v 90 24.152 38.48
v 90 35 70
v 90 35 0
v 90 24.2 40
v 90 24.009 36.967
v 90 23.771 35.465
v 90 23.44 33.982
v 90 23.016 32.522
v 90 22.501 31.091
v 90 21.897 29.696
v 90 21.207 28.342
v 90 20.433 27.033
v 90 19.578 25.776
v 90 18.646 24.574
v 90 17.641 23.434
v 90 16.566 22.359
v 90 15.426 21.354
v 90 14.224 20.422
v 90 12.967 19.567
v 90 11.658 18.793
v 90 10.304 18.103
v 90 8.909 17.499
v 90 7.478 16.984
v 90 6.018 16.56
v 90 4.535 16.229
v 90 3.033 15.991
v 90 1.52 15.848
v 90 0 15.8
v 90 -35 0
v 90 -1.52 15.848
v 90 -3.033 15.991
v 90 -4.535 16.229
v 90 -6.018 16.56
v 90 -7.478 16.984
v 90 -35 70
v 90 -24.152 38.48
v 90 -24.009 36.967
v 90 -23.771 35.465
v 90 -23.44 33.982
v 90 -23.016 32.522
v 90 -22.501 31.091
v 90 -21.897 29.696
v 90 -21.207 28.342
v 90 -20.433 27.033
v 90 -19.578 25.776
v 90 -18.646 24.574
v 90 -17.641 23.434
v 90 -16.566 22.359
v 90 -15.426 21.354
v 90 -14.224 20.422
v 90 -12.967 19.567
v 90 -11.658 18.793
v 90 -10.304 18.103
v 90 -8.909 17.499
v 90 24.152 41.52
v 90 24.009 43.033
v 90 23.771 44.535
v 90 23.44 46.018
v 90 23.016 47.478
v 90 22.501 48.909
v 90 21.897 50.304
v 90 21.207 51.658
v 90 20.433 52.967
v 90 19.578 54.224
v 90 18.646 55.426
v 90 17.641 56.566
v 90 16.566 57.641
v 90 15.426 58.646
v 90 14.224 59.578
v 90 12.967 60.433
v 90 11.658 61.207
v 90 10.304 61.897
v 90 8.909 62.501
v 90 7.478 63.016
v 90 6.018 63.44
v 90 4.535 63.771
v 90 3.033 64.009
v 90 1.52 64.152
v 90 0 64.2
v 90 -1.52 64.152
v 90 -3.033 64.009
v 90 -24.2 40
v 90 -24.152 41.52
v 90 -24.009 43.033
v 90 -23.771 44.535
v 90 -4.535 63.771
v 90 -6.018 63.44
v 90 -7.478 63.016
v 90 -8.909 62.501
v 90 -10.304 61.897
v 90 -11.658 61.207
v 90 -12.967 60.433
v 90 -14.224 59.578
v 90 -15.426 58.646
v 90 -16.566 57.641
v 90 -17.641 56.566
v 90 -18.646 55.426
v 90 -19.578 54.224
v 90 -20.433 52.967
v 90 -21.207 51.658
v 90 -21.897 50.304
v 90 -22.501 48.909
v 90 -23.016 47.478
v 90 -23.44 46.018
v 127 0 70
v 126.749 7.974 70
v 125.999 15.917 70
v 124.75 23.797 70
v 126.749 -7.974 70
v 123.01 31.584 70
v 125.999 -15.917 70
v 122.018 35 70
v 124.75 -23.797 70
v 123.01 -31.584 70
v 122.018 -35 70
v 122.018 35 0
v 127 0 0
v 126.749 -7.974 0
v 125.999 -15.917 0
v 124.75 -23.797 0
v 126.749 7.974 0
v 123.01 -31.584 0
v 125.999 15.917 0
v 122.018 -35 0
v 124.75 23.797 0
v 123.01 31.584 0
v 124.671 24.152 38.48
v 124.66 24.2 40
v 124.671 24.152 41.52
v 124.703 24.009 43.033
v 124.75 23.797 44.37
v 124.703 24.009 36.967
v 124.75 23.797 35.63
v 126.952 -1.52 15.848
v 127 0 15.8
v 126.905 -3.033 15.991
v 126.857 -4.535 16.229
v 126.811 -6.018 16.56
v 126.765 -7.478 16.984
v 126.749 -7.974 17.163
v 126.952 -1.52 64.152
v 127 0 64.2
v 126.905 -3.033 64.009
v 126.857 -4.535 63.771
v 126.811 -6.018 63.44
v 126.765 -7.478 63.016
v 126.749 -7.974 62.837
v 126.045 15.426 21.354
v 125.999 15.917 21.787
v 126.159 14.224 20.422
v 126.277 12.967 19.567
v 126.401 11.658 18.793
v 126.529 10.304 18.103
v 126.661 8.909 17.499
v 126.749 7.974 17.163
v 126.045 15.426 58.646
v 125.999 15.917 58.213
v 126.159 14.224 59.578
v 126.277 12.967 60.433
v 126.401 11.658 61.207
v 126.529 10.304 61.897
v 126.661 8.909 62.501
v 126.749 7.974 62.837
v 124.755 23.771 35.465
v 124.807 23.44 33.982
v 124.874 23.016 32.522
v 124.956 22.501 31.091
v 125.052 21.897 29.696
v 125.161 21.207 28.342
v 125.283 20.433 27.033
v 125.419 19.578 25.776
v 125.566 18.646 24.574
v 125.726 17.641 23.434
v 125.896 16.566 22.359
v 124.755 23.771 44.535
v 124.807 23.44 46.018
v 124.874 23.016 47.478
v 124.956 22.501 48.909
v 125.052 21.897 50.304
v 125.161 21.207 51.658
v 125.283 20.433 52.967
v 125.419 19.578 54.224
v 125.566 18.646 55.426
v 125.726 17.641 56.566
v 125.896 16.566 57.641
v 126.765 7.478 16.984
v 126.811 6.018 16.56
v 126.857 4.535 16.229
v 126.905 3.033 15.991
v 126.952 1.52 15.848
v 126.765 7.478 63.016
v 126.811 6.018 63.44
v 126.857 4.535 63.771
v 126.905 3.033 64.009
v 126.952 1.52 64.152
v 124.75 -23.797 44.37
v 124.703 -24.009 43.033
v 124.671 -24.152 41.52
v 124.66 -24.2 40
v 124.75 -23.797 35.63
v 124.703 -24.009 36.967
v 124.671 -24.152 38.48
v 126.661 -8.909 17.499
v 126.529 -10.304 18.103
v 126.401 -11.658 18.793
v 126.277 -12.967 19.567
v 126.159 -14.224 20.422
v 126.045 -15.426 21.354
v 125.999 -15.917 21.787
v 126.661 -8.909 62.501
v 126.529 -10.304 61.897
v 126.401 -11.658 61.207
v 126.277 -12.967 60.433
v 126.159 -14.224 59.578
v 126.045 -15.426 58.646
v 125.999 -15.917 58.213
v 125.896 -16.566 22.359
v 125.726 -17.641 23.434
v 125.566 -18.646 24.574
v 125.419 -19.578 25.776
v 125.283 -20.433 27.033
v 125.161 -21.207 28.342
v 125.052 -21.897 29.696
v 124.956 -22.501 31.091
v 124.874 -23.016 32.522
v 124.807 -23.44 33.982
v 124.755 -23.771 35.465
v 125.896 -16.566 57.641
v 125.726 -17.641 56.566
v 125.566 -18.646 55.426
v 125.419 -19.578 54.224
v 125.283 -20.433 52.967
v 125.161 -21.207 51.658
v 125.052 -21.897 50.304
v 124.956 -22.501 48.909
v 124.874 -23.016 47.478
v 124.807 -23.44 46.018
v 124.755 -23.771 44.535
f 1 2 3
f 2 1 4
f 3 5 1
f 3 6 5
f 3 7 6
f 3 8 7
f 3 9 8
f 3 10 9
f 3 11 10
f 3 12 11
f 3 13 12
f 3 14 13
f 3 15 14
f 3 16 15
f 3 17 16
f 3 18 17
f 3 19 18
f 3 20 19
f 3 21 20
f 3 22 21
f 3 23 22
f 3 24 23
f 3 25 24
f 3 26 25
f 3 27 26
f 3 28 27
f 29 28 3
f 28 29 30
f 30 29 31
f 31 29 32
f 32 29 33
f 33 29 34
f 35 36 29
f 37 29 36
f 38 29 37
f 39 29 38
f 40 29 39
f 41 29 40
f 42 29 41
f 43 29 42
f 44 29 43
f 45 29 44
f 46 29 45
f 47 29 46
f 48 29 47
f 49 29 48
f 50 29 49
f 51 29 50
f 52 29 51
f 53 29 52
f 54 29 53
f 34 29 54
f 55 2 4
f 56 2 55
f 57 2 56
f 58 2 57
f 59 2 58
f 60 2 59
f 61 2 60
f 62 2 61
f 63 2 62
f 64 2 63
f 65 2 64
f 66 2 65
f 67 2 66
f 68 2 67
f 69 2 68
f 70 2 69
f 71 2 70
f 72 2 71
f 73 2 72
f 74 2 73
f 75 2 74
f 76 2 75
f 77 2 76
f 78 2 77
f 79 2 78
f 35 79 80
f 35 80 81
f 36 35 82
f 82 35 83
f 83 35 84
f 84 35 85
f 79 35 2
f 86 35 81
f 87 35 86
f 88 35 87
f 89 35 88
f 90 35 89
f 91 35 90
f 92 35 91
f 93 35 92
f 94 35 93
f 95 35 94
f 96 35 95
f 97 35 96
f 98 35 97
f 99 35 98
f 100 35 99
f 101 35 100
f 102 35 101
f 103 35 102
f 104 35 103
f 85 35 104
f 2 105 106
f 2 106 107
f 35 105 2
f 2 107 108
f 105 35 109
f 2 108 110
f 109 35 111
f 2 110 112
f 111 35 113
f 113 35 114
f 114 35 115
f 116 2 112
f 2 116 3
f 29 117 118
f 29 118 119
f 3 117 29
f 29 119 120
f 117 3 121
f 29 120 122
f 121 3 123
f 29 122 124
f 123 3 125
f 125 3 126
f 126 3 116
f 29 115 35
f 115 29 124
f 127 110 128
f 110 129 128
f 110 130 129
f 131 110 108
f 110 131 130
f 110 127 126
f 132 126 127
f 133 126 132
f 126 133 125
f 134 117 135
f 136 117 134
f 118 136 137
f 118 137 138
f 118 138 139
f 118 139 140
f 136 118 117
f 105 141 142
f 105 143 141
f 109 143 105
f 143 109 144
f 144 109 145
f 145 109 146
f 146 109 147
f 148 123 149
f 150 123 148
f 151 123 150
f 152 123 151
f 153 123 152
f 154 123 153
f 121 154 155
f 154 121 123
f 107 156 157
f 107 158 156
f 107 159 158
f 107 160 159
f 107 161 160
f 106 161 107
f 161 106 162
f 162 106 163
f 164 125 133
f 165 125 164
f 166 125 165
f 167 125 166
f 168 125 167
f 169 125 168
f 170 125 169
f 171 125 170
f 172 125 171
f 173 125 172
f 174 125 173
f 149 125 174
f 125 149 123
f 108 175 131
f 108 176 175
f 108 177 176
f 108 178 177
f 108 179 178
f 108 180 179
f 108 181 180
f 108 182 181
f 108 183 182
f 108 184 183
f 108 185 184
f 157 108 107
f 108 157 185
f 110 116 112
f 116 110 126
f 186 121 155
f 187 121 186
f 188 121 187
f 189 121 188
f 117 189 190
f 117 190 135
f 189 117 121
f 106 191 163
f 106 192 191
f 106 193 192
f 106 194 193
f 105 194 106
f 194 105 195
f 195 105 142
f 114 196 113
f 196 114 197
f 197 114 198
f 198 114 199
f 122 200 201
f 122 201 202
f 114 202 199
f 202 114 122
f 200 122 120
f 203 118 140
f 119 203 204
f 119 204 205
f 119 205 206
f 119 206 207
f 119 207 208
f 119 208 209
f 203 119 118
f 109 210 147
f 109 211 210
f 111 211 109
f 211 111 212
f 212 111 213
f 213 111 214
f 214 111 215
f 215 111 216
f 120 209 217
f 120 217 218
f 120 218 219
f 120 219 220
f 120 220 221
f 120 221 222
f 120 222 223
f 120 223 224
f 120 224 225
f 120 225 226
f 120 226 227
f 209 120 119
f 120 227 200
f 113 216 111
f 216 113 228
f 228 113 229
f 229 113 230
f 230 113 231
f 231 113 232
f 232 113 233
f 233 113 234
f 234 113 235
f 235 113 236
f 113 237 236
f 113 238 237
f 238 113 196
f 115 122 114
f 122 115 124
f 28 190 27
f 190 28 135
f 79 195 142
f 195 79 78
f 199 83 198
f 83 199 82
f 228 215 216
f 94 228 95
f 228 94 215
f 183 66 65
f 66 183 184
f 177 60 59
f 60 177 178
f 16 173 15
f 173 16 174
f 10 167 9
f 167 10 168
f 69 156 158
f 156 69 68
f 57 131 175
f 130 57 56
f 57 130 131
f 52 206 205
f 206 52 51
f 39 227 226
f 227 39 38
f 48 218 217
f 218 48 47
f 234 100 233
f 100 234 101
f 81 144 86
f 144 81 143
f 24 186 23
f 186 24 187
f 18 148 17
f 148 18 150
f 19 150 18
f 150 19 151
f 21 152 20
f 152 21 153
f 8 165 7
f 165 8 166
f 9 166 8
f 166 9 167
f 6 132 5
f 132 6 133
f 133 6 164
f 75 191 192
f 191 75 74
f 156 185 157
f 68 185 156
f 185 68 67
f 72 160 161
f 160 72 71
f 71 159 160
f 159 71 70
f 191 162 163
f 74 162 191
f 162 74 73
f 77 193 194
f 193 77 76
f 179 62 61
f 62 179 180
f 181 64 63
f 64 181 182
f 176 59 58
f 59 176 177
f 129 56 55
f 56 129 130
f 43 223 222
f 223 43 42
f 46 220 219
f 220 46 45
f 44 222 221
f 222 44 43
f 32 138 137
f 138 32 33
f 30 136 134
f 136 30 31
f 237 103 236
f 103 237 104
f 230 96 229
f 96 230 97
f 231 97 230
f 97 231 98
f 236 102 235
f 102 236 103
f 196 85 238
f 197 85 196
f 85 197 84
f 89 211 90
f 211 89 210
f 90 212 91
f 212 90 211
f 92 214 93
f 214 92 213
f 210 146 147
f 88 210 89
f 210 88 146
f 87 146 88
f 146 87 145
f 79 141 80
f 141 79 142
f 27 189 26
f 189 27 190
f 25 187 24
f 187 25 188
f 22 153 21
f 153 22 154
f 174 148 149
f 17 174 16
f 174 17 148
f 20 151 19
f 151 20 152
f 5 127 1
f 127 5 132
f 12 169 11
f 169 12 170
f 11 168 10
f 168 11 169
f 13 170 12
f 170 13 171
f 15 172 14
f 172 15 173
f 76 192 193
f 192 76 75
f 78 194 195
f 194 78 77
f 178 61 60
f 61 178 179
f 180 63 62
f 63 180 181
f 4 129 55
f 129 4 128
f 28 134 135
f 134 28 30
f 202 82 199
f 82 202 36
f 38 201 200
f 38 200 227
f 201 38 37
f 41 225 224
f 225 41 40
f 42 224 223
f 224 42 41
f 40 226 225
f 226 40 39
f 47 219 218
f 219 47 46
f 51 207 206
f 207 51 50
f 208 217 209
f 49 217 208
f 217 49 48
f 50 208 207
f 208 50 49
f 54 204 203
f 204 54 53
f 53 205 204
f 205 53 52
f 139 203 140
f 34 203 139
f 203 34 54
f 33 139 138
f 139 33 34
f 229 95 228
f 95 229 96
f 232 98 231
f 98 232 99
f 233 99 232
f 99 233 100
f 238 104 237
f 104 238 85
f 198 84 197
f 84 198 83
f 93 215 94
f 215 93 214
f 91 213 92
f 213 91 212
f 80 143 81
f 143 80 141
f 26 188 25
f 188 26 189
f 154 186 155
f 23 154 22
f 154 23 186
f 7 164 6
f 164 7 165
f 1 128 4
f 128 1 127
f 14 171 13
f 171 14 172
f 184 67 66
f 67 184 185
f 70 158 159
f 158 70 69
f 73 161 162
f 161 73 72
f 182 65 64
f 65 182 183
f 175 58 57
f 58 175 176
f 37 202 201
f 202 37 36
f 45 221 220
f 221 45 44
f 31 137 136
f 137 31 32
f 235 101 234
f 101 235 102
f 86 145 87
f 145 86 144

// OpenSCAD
difference(){
    block();
    translate([30,0,40]){
        rotate([0,90,0]){
            cylinder(100, 24.2, 24.2, $fn=100);
        }
    }
}

module block(){
    intersection(){
        translate([90,-35,0]){
            cube([40,70,70]);
        }
        cylinder(100, 254/2, 254/2, $fn=100);
    }
}
